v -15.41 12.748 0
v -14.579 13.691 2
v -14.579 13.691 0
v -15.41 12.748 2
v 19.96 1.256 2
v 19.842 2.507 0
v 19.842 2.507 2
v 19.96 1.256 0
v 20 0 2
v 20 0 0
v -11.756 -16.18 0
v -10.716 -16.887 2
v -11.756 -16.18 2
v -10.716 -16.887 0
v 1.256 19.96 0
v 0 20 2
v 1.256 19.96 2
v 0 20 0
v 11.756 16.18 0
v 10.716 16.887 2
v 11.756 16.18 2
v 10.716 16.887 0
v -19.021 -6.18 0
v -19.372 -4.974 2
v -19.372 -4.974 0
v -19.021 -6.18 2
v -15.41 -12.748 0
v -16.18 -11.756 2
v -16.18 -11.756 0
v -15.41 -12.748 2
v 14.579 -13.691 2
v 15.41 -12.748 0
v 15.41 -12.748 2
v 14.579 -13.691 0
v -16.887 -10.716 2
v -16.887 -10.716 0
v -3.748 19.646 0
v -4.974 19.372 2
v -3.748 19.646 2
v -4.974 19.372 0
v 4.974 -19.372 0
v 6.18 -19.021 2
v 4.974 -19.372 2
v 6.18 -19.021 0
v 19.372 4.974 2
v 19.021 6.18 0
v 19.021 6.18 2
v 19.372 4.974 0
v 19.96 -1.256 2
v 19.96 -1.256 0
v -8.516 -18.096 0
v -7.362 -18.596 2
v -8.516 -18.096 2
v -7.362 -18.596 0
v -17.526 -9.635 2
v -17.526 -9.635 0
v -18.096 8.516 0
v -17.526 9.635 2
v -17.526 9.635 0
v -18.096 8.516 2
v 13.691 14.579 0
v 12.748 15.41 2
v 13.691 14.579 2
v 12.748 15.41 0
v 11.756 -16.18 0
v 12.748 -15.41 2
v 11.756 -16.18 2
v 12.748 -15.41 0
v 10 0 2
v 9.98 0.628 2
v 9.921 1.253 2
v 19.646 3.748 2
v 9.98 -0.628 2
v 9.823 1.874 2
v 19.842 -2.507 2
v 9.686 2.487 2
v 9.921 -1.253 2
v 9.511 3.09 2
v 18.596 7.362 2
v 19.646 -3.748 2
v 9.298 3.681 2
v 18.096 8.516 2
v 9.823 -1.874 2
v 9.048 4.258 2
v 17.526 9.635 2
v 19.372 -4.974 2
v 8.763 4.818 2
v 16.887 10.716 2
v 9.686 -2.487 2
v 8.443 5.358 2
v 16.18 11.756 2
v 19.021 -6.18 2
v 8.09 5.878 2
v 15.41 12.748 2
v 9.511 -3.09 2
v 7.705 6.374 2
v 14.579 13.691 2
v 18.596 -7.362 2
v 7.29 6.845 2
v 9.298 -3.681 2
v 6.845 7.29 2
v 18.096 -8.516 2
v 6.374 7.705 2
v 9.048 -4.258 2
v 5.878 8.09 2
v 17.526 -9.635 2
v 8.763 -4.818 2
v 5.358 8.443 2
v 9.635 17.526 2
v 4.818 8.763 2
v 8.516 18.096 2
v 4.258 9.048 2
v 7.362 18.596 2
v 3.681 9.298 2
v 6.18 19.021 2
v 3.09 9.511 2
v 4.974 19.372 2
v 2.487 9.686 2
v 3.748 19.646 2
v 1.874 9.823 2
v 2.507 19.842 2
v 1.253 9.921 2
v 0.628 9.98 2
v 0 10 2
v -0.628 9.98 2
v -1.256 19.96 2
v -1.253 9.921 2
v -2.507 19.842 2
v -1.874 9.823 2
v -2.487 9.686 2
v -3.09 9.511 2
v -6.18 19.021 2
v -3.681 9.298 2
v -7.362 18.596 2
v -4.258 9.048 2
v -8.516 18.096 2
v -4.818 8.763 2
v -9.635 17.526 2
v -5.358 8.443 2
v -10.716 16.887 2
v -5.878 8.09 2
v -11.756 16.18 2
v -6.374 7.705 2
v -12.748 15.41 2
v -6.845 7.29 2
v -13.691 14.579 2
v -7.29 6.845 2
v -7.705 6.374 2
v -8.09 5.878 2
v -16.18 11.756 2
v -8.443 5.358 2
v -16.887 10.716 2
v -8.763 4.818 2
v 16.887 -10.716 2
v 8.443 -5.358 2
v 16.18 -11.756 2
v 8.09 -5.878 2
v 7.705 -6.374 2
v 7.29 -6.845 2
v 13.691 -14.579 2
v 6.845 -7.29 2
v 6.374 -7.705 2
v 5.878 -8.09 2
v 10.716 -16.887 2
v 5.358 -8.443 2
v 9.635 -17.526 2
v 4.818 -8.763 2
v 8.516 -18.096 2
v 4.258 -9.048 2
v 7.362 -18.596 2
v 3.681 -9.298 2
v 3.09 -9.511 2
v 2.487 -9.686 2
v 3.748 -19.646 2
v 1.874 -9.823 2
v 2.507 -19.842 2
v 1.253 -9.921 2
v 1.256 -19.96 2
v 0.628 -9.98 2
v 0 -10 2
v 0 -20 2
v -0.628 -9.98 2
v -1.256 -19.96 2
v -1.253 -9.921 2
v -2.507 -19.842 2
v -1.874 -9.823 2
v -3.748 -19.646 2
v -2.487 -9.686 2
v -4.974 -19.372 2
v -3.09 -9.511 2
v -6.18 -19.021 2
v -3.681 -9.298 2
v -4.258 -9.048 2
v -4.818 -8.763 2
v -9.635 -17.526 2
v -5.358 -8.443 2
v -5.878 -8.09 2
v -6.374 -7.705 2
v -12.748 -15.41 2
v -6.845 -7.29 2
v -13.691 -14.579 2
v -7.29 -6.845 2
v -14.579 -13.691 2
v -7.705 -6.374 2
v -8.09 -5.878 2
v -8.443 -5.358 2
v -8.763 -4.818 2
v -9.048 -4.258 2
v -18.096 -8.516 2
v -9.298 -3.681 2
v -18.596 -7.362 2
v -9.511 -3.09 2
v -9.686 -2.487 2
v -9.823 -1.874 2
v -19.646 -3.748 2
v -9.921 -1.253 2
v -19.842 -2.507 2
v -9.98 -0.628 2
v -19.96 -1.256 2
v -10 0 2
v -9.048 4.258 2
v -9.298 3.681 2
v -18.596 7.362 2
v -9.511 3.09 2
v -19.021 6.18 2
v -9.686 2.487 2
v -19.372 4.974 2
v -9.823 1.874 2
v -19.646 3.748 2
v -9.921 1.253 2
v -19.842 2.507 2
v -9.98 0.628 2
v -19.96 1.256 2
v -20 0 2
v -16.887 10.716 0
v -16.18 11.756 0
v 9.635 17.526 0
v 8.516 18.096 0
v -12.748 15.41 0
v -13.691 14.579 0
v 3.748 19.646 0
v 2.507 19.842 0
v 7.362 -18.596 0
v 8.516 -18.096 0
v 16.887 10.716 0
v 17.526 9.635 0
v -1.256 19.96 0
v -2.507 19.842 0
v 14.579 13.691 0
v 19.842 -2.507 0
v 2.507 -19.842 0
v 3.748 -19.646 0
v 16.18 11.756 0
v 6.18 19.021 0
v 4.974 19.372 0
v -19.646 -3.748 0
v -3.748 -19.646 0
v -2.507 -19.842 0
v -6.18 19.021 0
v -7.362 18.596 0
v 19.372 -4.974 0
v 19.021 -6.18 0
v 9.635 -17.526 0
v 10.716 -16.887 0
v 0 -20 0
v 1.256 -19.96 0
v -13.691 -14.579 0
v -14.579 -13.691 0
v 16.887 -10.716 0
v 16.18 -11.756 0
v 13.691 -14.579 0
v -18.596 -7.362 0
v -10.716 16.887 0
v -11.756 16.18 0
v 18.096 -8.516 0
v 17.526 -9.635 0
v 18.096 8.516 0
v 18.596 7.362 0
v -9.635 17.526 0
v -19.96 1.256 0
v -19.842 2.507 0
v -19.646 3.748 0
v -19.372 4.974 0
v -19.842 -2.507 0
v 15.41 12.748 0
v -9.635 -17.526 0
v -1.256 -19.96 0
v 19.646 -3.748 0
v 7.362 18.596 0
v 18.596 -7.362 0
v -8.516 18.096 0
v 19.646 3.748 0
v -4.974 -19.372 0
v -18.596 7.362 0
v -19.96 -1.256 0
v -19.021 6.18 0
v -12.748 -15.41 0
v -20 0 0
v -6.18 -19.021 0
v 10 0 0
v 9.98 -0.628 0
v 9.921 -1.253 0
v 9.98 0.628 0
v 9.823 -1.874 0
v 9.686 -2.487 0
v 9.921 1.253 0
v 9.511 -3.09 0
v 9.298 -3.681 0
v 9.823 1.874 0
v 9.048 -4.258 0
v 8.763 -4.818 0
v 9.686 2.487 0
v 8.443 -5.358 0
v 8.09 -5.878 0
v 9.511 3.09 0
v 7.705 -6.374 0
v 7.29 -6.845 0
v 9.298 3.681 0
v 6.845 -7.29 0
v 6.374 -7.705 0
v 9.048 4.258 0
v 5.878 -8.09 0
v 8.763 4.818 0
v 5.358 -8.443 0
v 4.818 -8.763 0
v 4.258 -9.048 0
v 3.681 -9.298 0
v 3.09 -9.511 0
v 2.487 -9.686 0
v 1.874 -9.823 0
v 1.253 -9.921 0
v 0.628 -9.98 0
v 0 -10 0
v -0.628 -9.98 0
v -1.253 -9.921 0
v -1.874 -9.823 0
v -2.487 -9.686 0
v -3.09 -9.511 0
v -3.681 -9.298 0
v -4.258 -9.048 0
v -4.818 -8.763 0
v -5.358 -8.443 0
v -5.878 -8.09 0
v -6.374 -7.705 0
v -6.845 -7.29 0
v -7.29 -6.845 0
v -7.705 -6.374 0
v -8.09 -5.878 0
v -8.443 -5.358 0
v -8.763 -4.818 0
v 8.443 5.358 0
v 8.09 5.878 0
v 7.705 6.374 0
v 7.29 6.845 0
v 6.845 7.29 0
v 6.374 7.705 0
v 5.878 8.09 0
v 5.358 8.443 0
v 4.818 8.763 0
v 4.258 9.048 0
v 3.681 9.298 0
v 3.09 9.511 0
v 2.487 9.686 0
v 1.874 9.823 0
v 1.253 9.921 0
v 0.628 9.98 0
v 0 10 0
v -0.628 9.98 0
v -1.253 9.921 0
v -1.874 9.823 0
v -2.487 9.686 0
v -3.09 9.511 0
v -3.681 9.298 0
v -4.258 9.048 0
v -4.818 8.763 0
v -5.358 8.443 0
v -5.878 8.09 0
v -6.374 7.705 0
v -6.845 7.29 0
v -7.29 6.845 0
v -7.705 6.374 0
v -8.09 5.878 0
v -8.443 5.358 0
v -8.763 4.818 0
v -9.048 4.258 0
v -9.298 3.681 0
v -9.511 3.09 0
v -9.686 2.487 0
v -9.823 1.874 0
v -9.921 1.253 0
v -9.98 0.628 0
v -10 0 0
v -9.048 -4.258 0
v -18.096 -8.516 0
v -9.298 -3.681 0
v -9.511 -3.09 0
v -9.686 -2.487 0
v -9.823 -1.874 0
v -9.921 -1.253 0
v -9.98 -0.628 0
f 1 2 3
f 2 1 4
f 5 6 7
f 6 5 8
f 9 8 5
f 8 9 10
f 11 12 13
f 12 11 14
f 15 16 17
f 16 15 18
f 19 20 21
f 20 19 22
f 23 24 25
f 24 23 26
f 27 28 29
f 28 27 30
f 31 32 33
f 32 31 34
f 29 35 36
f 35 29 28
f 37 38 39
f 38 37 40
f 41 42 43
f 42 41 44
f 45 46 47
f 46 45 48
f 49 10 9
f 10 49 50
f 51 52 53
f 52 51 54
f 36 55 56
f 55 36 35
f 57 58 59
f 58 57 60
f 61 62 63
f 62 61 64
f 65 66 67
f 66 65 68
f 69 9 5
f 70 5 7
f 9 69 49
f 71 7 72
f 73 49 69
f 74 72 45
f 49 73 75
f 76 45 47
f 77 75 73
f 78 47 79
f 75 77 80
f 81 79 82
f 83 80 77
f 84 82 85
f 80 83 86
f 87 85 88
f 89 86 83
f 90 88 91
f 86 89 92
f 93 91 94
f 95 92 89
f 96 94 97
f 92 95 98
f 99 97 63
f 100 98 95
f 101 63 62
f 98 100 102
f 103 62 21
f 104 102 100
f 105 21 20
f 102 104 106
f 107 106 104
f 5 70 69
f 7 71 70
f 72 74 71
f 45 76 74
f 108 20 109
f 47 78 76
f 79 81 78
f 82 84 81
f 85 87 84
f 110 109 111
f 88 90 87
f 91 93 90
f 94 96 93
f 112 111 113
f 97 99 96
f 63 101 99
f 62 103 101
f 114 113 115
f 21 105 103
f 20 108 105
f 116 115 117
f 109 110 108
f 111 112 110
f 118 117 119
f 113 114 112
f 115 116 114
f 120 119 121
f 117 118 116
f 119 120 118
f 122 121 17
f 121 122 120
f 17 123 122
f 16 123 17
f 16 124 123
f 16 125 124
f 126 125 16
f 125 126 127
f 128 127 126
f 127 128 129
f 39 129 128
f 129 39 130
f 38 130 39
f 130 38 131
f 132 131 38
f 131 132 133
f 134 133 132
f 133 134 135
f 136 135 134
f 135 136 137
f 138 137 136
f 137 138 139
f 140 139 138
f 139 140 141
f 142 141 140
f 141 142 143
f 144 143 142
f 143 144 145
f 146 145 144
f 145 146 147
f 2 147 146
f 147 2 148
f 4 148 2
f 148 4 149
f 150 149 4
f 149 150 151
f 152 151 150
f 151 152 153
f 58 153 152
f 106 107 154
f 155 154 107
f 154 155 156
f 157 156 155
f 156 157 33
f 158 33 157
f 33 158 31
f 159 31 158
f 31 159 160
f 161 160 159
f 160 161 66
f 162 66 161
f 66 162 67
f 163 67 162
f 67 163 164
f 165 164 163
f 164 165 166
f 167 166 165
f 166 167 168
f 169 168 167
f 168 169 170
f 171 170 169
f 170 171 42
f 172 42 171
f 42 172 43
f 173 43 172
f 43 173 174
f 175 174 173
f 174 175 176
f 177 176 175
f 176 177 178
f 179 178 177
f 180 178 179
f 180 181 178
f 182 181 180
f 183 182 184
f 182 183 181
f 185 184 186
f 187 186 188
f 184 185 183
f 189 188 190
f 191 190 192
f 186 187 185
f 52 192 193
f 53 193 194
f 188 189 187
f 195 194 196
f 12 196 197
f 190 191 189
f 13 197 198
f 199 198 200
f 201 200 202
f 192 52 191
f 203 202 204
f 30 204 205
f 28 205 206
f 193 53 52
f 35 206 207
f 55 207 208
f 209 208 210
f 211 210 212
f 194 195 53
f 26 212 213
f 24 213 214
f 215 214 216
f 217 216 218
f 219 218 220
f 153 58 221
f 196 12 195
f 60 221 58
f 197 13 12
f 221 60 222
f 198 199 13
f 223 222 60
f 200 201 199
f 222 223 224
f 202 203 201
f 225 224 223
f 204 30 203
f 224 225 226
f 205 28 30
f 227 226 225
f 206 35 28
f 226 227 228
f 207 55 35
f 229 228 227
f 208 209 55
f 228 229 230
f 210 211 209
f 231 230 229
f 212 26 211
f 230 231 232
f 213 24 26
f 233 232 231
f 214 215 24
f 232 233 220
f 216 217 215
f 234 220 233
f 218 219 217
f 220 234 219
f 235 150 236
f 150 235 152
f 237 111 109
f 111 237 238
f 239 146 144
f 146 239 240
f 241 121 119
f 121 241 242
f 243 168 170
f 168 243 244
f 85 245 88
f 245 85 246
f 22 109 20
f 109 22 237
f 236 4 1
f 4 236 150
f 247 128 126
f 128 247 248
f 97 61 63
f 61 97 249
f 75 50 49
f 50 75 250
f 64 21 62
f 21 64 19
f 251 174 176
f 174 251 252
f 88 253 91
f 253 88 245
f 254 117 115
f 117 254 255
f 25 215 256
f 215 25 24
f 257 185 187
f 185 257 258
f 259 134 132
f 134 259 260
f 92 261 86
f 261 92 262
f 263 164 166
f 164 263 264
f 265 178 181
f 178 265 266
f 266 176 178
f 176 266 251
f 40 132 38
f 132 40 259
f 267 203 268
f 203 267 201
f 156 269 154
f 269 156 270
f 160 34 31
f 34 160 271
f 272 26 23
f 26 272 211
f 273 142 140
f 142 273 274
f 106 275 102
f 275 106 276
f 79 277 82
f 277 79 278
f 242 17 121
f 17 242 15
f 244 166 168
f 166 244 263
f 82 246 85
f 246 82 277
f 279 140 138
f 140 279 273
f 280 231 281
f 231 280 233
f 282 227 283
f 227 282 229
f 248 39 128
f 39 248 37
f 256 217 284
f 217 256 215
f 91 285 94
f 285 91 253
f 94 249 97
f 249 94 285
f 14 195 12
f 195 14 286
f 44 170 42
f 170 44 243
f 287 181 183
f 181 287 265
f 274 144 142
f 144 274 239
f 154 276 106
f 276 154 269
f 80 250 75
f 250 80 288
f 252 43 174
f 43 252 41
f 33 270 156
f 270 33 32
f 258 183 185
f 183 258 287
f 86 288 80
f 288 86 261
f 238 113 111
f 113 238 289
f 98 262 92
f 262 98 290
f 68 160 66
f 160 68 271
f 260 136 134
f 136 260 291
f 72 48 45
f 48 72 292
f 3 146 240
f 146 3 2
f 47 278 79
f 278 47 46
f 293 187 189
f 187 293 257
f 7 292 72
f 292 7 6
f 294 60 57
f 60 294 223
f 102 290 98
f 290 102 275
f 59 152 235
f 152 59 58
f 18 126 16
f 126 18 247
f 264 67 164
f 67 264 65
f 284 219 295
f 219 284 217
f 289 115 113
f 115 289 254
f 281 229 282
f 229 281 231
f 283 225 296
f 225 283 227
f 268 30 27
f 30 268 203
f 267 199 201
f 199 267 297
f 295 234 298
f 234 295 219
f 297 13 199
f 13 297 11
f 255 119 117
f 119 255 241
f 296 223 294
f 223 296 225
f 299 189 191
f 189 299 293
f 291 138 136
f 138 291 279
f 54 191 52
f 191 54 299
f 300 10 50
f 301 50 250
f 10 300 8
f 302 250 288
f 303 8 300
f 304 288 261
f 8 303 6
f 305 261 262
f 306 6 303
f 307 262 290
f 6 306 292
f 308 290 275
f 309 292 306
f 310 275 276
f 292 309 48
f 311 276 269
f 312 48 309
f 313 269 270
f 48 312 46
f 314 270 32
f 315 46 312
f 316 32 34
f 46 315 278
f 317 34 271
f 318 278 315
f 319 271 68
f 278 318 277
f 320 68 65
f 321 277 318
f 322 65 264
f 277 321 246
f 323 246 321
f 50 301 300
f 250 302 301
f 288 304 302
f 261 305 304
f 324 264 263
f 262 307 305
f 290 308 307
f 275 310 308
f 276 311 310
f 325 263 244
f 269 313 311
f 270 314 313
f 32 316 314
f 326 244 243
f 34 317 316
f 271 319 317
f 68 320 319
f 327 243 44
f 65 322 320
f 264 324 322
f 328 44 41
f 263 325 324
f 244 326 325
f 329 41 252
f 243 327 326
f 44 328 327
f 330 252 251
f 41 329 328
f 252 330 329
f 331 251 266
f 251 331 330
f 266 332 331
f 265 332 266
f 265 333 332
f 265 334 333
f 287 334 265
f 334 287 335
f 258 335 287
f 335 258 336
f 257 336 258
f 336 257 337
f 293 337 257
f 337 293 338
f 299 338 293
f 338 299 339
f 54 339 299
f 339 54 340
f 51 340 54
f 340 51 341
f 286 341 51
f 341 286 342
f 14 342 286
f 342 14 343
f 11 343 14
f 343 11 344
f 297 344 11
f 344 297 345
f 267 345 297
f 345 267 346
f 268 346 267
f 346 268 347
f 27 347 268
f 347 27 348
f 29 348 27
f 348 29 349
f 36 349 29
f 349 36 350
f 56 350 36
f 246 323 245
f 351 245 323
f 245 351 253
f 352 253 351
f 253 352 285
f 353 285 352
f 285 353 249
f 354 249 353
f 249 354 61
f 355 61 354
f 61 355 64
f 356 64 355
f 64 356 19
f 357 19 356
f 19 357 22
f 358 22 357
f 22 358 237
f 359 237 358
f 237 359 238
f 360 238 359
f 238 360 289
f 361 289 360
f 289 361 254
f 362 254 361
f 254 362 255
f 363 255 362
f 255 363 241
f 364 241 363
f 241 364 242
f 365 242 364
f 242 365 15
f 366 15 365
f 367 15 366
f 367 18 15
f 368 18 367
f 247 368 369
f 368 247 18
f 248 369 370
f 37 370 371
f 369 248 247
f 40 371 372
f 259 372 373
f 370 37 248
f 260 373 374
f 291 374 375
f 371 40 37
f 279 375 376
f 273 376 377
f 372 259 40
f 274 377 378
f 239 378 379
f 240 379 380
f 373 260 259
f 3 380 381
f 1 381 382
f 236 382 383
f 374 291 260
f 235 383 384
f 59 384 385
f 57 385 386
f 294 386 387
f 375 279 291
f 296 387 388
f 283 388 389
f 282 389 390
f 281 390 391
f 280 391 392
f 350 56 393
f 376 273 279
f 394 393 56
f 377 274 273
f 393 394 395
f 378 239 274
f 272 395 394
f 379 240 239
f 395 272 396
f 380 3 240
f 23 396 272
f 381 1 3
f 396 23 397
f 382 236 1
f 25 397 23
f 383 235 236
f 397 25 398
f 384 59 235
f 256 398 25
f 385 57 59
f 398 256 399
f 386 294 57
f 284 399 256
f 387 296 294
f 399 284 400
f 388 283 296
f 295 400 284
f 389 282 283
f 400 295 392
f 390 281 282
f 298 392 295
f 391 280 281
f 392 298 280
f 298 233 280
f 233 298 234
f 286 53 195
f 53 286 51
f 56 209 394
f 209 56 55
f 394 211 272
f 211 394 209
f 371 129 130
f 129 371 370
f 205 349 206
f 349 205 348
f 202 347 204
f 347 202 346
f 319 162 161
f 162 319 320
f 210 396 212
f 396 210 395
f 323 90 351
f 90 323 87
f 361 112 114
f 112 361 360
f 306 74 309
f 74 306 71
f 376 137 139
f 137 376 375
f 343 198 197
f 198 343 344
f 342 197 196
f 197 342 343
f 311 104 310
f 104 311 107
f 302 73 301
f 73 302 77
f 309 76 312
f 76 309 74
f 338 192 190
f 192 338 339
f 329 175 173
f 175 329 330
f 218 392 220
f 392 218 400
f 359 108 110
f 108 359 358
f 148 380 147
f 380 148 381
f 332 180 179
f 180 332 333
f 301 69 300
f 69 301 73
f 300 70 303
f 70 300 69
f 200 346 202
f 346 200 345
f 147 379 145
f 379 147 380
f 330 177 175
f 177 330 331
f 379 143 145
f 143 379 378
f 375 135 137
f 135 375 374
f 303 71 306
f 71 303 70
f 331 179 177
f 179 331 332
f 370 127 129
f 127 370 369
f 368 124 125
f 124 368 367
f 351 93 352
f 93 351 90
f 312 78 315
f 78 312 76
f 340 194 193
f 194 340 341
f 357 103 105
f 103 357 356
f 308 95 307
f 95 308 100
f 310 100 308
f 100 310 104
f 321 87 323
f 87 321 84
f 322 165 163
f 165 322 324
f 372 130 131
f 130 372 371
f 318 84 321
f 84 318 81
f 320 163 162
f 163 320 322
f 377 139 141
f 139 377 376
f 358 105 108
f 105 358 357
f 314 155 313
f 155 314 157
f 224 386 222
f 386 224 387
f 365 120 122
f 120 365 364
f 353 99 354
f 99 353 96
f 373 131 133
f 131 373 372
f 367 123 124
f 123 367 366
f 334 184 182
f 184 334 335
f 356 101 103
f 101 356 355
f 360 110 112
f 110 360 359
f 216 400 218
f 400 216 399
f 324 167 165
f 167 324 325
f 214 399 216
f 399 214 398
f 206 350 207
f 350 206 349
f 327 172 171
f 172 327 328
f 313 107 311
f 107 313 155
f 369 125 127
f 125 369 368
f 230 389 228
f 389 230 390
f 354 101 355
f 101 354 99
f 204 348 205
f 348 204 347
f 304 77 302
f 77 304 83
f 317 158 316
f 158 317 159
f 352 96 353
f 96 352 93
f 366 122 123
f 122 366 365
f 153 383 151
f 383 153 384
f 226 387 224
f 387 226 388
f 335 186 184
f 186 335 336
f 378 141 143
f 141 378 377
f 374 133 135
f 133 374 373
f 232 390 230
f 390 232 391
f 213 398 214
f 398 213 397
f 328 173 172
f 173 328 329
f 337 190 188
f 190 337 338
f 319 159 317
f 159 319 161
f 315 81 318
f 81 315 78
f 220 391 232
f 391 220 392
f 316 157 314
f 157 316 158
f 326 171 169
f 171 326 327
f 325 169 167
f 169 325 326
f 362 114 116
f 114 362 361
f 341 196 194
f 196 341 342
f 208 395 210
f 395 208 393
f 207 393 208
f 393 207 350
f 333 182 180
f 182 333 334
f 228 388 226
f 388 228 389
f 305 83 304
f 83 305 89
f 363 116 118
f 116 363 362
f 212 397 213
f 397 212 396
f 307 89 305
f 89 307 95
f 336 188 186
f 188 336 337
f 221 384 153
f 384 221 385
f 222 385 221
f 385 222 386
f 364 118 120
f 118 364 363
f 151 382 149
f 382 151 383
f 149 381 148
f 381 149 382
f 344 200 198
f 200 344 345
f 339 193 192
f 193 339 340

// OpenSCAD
// Spacer Ring Component
module spacer_ring() {
    difference() {
        // Outer cylinder
        cylinder(h = 2, r = 20, $fn = 100);
        // Inner hollow
        cylinder(h = 2.1, r = 10, $fn = 100);
    }
}

// Render the spacer ring
spacer_ring();
